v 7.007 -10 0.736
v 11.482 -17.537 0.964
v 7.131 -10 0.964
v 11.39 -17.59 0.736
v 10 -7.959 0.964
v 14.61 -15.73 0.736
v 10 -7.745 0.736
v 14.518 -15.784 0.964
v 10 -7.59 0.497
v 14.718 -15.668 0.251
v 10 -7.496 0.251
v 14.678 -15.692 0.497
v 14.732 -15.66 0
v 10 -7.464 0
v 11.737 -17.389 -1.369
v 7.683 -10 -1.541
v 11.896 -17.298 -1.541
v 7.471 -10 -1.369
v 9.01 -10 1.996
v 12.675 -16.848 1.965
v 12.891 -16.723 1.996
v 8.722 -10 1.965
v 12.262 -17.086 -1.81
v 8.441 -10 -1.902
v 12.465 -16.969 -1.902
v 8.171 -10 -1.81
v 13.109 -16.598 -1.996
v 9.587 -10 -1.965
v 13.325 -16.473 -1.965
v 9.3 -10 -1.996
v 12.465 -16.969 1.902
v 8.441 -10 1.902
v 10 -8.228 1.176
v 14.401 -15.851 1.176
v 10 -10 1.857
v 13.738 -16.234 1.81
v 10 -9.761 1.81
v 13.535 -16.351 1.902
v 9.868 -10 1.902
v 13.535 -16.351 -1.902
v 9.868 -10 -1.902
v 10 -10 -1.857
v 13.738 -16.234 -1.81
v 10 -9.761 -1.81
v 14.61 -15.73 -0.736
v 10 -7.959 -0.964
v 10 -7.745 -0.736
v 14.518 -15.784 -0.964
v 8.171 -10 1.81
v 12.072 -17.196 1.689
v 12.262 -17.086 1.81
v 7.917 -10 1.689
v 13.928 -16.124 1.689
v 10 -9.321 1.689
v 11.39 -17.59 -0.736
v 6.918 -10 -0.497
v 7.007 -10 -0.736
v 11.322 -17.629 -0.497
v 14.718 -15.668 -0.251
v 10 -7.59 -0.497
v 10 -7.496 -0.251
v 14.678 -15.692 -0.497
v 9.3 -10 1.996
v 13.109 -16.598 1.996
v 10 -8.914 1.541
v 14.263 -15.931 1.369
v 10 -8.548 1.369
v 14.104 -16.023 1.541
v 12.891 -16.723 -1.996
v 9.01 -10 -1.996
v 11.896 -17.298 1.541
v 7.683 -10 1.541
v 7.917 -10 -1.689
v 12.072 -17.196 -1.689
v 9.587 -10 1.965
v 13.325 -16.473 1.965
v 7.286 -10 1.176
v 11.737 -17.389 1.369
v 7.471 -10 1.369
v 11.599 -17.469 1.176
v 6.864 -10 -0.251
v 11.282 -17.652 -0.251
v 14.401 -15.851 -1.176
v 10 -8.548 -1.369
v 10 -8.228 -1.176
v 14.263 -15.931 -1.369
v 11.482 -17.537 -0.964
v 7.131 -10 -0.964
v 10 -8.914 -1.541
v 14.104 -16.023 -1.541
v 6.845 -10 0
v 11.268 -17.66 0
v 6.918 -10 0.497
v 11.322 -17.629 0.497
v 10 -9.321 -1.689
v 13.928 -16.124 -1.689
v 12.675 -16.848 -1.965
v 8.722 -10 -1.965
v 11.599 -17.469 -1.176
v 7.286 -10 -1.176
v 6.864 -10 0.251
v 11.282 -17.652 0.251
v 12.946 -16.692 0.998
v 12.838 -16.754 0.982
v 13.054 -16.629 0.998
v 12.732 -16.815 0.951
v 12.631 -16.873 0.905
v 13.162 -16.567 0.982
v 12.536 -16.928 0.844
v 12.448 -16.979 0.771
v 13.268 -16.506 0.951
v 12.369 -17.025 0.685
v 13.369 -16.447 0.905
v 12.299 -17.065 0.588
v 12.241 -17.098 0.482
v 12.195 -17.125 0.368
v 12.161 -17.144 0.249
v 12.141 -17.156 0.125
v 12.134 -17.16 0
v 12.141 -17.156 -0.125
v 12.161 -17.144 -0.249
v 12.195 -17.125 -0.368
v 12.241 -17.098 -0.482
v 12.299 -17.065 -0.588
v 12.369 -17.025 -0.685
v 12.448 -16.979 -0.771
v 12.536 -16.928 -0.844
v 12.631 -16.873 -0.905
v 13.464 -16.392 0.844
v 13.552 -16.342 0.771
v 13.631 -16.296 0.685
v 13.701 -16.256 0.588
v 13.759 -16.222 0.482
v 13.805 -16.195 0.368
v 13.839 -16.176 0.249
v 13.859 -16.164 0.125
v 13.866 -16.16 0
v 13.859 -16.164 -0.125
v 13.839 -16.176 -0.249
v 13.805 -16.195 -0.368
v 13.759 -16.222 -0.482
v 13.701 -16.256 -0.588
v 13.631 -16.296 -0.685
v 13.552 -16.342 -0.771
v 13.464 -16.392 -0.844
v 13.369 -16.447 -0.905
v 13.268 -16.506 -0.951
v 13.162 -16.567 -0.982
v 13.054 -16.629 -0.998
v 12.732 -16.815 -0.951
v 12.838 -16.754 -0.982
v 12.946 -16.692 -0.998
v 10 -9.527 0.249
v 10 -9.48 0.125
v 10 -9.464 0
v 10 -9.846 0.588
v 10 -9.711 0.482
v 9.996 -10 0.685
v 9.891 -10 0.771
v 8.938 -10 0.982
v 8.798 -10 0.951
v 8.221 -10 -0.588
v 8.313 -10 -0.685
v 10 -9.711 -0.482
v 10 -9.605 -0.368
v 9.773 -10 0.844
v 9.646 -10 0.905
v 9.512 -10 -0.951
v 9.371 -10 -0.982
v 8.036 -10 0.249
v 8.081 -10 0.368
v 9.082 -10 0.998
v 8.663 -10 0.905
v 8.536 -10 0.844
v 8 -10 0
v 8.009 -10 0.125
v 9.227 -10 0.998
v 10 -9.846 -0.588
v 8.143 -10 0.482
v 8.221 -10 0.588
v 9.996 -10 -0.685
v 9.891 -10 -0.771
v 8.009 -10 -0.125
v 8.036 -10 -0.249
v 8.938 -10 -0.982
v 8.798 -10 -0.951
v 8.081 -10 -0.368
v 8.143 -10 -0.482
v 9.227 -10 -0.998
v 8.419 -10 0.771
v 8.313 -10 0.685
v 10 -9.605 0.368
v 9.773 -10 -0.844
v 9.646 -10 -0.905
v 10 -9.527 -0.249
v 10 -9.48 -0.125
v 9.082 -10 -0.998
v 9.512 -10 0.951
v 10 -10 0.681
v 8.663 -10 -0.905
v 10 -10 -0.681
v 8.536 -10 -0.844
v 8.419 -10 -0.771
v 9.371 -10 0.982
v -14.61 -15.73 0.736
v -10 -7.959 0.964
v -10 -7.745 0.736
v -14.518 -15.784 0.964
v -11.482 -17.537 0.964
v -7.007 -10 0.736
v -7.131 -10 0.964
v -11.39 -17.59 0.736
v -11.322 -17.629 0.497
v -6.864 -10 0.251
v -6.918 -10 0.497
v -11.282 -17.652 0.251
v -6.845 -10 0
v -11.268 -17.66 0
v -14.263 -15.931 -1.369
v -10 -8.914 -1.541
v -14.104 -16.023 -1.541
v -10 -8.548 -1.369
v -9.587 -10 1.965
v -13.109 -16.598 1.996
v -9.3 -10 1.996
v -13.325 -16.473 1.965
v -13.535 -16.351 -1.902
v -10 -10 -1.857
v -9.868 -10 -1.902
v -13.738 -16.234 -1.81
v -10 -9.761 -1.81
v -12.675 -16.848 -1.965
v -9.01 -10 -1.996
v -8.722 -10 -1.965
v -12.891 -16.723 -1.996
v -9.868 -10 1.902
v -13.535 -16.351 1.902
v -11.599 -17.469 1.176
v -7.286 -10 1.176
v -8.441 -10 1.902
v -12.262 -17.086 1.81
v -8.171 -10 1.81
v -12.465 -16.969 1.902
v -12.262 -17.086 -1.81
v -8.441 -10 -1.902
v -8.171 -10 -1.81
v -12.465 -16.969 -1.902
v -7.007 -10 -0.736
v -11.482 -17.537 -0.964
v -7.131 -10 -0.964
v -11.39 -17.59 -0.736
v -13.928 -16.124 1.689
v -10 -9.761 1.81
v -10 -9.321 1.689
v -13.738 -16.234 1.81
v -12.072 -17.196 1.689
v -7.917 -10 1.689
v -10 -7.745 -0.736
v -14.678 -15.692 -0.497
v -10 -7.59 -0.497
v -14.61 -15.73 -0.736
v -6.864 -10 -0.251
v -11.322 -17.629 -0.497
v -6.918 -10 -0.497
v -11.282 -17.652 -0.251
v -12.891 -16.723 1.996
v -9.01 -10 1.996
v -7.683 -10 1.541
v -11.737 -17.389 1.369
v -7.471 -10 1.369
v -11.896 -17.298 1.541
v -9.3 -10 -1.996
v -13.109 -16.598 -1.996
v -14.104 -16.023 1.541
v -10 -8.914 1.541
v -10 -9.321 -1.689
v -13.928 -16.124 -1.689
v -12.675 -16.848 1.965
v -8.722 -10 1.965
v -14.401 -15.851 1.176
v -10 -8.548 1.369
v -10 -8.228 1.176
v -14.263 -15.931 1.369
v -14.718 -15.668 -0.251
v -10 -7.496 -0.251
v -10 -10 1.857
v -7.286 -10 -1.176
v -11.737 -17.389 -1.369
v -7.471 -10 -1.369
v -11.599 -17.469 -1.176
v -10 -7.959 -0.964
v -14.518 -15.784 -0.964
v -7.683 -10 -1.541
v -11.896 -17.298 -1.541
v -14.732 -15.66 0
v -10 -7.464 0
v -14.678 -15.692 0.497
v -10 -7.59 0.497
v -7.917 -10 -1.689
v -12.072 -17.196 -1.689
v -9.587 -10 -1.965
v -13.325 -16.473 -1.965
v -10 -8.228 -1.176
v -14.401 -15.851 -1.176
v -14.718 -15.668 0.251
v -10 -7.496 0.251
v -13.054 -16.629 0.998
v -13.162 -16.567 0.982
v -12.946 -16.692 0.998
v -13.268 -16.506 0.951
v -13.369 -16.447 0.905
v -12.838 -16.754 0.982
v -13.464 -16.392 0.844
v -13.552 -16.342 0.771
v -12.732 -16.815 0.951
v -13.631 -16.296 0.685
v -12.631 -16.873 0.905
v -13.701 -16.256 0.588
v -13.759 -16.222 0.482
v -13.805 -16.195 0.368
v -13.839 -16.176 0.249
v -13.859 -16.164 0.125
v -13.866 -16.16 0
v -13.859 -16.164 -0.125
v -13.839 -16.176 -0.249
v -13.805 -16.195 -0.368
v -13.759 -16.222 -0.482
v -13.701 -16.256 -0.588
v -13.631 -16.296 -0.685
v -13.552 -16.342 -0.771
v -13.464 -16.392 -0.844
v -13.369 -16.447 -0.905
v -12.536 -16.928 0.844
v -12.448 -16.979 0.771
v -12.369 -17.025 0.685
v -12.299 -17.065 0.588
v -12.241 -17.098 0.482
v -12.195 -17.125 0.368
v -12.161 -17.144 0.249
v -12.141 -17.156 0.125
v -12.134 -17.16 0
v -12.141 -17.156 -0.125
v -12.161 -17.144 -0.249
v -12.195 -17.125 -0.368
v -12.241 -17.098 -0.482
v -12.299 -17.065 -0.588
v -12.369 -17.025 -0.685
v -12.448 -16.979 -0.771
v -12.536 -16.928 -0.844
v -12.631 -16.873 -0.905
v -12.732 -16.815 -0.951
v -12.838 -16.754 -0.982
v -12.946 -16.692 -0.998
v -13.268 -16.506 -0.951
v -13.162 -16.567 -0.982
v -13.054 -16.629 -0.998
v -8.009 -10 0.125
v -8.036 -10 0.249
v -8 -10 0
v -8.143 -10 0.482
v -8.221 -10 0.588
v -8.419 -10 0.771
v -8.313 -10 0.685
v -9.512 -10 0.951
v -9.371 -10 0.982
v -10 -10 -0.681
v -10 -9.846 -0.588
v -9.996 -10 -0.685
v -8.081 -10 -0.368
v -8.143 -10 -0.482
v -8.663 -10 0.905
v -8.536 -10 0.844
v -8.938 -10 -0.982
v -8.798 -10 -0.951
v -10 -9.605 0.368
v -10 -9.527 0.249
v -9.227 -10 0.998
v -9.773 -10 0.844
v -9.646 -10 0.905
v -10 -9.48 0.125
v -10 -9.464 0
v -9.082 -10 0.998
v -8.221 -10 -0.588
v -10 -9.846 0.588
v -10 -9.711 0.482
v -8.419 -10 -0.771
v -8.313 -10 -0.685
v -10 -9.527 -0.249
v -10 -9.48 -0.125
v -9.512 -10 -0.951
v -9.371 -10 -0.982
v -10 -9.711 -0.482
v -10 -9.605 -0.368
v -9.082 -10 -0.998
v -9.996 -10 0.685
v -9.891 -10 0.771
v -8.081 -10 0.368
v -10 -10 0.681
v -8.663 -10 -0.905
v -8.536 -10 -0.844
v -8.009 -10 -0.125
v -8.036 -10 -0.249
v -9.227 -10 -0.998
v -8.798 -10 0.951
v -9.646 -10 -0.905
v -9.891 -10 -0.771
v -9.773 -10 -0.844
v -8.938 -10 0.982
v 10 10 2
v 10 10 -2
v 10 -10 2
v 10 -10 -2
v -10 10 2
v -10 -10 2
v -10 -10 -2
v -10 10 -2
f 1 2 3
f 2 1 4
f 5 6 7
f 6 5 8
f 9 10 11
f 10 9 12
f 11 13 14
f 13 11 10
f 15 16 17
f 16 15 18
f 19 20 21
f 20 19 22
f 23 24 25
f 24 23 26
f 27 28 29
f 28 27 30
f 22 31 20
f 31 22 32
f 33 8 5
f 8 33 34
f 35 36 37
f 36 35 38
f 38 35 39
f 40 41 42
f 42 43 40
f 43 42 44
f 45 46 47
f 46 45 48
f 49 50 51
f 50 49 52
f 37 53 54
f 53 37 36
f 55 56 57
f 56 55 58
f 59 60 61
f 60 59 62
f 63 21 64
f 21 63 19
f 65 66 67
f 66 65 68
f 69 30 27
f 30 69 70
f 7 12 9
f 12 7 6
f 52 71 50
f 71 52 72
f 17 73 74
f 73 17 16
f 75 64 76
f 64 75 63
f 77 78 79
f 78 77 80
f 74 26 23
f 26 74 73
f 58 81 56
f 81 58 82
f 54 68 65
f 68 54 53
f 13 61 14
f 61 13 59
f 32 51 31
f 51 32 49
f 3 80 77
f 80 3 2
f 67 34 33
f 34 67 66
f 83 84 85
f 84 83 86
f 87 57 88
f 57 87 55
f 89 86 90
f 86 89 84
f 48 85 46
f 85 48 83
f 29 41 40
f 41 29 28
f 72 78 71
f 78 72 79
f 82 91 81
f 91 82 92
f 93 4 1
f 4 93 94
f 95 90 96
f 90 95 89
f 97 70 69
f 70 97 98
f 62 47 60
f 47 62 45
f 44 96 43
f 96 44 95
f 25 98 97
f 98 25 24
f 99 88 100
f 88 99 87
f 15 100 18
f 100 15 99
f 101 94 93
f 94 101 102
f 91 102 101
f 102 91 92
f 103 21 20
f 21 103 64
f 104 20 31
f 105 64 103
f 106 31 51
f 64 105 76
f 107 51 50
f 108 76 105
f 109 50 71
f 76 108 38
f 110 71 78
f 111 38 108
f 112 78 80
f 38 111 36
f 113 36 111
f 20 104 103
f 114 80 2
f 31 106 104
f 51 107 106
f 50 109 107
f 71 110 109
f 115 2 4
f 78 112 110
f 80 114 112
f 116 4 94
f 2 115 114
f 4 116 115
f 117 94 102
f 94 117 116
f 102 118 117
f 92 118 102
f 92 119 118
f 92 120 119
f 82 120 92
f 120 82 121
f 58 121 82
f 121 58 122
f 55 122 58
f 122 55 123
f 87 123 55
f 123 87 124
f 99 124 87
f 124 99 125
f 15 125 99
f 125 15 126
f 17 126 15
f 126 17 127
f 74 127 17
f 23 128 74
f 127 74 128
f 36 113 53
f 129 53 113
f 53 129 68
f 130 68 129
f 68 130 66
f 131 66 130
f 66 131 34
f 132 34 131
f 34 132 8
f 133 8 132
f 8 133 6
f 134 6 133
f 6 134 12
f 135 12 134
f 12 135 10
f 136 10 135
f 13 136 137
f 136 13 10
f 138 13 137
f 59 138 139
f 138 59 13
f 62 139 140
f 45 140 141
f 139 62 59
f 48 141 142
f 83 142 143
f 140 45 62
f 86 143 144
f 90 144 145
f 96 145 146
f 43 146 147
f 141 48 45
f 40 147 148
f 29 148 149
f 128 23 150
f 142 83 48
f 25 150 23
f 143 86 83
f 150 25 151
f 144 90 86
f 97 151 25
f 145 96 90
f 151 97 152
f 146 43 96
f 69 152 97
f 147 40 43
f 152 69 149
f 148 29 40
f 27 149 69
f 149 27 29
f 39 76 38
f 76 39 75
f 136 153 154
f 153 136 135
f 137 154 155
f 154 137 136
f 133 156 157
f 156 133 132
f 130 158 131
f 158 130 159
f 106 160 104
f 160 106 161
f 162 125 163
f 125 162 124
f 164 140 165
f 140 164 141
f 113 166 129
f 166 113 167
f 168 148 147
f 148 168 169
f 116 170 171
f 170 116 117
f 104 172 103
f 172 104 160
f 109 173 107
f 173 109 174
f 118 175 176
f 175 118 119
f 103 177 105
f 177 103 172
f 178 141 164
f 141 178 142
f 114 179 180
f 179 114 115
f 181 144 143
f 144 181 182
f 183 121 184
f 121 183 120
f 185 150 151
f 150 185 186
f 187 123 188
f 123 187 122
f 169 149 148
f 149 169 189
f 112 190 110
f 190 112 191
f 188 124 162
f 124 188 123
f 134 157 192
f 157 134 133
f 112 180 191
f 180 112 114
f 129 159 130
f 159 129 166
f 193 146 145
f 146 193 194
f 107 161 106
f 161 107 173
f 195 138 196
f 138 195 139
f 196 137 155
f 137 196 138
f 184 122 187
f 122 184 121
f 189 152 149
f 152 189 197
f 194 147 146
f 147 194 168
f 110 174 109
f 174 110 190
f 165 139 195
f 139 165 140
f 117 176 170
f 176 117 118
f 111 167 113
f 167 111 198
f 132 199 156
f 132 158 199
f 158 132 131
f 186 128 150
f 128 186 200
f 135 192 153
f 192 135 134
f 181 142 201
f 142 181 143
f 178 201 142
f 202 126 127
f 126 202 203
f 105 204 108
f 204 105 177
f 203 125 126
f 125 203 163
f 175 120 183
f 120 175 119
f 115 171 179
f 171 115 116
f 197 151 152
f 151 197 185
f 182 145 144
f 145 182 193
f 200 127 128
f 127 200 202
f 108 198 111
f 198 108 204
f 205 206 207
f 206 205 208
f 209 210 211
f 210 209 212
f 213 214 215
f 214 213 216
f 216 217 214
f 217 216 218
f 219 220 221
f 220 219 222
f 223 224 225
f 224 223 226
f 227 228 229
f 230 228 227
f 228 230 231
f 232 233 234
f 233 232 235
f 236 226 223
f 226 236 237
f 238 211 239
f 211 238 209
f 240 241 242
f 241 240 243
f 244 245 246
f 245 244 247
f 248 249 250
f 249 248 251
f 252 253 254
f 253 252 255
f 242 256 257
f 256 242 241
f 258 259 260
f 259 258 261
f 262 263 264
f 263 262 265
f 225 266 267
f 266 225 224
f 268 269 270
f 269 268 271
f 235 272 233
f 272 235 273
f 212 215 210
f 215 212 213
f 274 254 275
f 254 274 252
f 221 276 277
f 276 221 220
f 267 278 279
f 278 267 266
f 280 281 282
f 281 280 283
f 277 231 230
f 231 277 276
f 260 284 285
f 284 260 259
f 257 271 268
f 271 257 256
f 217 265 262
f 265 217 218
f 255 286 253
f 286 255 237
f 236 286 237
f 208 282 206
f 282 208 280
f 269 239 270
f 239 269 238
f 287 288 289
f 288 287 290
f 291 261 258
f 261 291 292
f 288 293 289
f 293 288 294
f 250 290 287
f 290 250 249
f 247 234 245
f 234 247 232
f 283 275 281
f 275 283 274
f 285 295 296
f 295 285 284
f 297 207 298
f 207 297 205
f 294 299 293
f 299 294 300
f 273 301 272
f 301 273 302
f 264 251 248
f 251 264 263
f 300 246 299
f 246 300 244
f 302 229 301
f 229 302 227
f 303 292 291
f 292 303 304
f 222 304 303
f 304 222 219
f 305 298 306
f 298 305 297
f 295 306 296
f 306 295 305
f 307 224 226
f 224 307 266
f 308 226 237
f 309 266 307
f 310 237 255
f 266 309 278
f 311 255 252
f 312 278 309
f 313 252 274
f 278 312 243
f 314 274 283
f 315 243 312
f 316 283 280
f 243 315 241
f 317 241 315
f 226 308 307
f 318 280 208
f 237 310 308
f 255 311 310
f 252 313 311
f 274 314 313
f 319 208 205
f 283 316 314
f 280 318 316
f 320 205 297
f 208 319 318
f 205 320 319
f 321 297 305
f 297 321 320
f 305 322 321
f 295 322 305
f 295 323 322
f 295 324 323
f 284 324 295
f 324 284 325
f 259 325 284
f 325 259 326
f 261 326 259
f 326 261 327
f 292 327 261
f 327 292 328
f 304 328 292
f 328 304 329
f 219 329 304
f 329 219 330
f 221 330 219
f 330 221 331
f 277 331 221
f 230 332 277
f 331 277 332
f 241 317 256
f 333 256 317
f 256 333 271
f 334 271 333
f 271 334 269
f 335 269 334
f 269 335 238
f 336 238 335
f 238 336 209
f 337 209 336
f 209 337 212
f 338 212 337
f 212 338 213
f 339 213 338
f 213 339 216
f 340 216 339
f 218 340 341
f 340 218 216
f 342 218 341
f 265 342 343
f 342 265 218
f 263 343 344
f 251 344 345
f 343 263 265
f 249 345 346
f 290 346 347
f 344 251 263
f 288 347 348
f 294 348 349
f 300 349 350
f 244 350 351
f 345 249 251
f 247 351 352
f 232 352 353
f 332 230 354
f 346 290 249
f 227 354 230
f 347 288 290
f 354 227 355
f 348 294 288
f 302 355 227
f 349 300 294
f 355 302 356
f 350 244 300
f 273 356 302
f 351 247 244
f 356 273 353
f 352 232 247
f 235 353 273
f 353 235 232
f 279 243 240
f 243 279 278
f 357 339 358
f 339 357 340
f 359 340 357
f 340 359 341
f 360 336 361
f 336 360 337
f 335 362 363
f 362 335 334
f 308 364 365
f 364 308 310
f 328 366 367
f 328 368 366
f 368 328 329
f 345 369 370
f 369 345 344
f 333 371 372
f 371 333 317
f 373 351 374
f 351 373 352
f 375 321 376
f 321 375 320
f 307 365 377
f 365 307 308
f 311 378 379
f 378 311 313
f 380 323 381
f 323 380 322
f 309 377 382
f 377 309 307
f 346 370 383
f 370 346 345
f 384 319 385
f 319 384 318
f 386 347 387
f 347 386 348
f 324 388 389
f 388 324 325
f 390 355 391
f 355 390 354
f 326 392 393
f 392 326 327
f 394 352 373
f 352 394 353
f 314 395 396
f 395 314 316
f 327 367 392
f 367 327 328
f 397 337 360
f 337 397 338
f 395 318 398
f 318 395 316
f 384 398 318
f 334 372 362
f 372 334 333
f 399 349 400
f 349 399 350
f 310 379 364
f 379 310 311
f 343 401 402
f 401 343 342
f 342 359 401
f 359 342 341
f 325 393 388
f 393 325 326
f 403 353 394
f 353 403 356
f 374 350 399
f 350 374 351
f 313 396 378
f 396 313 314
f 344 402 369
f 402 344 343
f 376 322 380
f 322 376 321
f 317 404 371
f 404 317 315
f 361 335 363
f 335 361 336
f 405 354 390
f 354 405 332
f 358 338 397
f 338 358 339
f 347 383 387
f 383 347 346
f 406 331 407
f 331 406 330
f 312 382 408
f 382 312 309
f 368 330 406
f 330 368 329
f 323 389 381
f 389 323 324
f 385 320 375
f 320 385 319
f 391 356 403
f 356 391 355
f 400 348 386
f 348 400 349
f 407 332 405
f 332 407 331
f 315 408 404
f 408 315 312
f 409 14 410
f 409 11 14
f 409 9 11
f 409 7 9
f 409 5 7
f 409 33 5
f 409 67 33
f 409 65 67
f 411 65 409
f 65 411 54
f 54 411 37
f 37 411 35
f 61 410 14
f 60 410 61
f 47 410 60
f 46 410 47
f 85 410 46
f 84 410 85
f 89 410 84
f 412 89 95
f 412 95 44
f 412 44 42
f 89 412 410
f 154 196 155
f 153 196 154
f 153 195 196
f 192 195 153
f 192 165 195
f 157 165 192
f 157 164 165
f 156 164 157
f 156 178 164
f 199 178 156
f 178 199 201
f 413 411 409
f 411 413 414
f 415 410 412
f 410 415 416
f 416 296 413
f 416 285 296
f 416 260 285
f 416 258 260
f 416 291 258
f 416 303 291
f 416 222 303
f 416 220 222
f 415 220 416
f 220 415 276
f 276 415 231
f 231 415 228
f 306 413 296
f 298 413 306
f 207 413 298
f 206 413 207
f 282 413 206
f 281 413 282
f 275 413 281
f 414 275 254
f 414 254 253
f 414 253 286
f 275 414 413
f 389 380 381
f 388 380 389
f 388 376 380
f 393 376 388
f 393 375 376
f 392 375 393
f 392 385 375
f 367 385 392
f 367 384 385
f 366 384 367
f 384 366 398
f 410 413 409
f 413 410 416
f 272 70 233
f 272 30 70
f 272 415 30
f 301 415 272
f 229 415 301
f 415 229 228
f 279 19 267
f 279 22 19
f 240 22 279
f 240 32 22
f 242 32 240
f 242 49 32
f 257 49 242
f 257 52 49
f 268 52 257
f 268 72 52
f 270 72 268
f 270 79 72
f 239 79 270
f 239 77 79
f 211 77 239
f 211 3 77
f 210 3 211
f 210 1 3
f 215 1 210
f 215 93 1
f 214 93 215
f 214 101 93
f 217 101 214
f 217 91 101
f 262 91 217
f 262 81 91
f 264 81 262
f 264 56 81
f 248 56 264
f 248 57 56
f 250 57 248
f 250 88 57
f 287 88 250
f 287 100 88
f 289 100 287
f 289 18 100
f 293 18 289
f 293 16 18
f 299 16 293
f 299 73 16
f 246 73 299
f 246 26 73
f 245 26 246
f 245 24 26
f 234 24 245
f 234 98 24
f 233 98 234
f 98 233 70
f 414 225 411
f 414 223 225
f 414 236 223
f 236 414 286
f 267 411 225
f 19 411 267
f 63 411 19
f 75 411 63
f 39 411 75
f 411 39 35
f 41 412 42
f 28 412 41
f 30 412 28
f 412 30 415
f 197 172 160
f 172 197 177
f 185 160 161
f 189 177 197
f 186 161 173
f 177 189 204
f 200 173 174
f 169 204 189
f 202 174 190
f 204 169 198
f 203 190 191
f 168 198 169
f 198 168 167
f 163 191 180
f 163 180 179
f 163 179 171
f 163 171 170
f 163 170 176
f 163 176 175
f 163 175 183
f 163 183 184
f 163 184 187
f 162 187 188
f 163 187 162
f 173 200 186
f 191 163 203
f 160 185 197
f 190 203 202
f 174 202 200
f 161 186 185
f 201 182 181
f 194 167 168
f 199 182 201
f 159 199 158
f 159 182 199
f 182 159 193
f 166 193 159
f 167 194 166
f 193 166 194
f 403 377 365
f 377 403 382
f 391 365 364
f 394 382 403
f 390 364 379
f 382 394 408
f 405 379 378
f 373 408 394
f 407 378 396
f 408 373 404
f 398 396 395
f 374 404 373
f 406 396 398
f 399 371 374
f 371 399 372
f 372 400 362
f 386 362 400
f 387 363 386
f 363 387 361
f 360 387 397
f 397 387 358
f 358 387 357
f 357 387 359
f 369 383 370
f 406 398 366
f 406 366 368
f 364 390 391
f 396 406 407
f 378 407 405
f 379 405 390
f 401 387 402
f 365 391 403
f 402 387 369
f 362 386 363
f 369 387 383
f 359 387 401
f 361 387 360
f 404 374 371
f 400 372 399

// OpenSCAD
$fn=50;

module pin() {
    difference() {
        cylinder(10,d=4);
        cylinder(10,d=2);
    }
}

module plate() {
    cube([20,20,4],true);
}


plate();
translate([8,-8,0]) rotate([90,0,30]) pin();
translate([-8,-8,0]) rotate([90,0,-30]) pin();
